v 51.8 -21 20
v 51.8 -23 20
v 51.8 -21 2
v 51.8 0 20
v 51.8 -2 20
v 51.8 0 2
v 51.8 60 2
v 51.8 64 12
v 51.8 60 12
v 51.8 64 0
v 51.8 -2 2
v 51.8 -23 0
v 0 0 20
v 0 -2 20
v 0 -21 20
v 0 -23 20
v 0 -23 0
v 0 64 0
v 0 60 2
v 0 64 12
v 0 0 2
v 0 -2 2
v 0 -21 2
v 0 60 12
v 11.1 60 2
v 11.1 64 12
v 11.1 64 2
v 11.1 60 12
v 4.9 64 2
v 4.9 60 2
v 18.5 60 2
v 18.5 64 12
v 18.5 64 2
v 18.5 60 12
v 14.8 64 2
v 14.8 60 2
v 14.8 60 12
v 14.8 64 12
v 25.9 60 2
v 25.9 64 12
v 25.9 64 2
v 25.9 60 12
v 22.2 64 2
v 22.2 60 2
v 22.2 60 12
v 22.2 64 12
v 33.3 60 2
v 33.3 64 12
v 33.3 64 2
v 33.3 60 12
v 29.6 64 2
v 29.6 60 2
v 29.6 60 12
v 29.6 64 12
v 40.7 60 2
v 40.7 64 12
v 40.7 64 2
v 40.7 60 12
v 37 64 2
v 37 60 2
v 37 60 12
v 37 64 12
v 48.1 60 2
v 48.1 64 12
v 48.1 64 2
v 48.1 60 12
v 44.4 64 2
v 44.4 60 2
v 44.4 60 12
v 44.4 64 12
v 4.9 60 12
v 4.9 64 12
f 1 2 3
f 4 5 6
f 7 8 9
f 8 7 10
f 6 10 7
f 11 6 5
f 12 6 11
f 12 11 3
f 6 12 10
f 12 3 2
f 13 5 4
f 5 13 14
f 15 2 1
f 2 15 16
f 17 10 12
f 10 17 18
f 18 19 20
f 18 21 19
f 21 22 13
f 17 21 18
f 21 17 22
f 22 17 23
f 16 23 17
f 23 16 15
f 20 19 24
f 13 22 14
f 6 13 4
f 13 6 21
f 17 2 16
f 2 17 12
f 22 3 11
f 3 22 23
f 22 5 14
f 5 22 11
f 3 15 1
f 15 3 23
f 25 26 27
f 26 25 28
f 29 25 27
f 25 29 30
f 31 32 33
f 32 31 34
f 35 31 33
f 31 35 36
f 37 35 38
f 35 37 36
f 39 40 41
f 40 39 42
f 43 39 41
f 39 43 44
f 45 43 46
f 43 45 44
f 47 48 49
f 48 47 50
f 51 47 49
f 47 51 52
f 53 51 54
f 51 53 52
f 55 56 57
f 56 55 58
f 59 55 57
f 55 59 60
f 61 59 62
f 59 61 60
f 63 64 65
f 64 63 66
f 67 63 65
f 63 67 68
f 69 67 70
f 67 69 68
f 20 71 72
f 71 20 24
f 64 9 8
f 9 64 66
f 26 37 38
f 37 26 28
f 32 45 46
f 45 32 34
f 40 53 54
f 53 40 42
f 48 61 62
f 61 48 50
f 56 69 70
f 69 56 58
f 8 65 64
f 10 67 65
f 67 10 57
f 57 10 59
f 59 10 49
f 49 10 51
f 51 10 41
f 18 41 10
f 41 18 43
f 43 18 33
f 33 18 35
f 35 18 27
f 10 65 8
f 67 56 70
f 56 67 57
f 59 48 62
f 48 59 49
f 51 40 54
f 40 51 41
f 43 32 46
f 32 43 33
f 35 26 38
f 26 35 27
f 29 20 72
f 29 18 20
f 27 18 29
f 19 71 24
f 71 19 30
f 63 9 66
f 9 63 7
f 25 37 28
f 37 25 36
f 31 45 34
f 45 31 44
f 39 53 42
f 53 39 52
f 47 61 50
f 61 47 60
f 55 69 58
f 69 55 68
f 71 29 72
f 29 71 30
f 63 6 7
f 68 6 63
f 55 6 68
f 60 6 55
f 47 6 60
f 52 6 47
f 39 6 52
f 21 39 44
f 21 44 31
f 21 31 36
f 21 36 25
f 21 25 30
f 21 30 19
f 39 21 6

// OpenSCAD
gap         =   3.7;
board       =  19.0;
thickness   =   2.0;
height      =  60.0;
depth       =  20.0;
width       = 14*gap;
hook_height =  12.0;
hook_thick  =   4.0;
mono        =   6.2;

//attachement to the board
translate([0, -board-2*thickness, 0])
difference() {
    cube([ width, board + 2* thickness, depth ]);

    translate([-thickness, thickness, thickness])
    cube([width + 2*thickness, board, depth ] );
}

//body
cube([ width, height, thickness]);

//hanger for interdental brushes
difference() {
    translate([0, height, 0])
    cube([ width, hook_thick, hook_height]);

    
    //interdental
    for (i = [0:1:5]) {
        color([1, 0, 1])
        translate([(2*i+2)*gap, height-hook_thick, thickness])
        cube([gap, 3*hook_thick, hook_height]);
    }
    
    //mono brush
    color([0, 0, 1])
    translate([3*gap-mono, height-hook_thick, thickness])
    cube([mono, 3*hook_thick, hook_height]);    

}
